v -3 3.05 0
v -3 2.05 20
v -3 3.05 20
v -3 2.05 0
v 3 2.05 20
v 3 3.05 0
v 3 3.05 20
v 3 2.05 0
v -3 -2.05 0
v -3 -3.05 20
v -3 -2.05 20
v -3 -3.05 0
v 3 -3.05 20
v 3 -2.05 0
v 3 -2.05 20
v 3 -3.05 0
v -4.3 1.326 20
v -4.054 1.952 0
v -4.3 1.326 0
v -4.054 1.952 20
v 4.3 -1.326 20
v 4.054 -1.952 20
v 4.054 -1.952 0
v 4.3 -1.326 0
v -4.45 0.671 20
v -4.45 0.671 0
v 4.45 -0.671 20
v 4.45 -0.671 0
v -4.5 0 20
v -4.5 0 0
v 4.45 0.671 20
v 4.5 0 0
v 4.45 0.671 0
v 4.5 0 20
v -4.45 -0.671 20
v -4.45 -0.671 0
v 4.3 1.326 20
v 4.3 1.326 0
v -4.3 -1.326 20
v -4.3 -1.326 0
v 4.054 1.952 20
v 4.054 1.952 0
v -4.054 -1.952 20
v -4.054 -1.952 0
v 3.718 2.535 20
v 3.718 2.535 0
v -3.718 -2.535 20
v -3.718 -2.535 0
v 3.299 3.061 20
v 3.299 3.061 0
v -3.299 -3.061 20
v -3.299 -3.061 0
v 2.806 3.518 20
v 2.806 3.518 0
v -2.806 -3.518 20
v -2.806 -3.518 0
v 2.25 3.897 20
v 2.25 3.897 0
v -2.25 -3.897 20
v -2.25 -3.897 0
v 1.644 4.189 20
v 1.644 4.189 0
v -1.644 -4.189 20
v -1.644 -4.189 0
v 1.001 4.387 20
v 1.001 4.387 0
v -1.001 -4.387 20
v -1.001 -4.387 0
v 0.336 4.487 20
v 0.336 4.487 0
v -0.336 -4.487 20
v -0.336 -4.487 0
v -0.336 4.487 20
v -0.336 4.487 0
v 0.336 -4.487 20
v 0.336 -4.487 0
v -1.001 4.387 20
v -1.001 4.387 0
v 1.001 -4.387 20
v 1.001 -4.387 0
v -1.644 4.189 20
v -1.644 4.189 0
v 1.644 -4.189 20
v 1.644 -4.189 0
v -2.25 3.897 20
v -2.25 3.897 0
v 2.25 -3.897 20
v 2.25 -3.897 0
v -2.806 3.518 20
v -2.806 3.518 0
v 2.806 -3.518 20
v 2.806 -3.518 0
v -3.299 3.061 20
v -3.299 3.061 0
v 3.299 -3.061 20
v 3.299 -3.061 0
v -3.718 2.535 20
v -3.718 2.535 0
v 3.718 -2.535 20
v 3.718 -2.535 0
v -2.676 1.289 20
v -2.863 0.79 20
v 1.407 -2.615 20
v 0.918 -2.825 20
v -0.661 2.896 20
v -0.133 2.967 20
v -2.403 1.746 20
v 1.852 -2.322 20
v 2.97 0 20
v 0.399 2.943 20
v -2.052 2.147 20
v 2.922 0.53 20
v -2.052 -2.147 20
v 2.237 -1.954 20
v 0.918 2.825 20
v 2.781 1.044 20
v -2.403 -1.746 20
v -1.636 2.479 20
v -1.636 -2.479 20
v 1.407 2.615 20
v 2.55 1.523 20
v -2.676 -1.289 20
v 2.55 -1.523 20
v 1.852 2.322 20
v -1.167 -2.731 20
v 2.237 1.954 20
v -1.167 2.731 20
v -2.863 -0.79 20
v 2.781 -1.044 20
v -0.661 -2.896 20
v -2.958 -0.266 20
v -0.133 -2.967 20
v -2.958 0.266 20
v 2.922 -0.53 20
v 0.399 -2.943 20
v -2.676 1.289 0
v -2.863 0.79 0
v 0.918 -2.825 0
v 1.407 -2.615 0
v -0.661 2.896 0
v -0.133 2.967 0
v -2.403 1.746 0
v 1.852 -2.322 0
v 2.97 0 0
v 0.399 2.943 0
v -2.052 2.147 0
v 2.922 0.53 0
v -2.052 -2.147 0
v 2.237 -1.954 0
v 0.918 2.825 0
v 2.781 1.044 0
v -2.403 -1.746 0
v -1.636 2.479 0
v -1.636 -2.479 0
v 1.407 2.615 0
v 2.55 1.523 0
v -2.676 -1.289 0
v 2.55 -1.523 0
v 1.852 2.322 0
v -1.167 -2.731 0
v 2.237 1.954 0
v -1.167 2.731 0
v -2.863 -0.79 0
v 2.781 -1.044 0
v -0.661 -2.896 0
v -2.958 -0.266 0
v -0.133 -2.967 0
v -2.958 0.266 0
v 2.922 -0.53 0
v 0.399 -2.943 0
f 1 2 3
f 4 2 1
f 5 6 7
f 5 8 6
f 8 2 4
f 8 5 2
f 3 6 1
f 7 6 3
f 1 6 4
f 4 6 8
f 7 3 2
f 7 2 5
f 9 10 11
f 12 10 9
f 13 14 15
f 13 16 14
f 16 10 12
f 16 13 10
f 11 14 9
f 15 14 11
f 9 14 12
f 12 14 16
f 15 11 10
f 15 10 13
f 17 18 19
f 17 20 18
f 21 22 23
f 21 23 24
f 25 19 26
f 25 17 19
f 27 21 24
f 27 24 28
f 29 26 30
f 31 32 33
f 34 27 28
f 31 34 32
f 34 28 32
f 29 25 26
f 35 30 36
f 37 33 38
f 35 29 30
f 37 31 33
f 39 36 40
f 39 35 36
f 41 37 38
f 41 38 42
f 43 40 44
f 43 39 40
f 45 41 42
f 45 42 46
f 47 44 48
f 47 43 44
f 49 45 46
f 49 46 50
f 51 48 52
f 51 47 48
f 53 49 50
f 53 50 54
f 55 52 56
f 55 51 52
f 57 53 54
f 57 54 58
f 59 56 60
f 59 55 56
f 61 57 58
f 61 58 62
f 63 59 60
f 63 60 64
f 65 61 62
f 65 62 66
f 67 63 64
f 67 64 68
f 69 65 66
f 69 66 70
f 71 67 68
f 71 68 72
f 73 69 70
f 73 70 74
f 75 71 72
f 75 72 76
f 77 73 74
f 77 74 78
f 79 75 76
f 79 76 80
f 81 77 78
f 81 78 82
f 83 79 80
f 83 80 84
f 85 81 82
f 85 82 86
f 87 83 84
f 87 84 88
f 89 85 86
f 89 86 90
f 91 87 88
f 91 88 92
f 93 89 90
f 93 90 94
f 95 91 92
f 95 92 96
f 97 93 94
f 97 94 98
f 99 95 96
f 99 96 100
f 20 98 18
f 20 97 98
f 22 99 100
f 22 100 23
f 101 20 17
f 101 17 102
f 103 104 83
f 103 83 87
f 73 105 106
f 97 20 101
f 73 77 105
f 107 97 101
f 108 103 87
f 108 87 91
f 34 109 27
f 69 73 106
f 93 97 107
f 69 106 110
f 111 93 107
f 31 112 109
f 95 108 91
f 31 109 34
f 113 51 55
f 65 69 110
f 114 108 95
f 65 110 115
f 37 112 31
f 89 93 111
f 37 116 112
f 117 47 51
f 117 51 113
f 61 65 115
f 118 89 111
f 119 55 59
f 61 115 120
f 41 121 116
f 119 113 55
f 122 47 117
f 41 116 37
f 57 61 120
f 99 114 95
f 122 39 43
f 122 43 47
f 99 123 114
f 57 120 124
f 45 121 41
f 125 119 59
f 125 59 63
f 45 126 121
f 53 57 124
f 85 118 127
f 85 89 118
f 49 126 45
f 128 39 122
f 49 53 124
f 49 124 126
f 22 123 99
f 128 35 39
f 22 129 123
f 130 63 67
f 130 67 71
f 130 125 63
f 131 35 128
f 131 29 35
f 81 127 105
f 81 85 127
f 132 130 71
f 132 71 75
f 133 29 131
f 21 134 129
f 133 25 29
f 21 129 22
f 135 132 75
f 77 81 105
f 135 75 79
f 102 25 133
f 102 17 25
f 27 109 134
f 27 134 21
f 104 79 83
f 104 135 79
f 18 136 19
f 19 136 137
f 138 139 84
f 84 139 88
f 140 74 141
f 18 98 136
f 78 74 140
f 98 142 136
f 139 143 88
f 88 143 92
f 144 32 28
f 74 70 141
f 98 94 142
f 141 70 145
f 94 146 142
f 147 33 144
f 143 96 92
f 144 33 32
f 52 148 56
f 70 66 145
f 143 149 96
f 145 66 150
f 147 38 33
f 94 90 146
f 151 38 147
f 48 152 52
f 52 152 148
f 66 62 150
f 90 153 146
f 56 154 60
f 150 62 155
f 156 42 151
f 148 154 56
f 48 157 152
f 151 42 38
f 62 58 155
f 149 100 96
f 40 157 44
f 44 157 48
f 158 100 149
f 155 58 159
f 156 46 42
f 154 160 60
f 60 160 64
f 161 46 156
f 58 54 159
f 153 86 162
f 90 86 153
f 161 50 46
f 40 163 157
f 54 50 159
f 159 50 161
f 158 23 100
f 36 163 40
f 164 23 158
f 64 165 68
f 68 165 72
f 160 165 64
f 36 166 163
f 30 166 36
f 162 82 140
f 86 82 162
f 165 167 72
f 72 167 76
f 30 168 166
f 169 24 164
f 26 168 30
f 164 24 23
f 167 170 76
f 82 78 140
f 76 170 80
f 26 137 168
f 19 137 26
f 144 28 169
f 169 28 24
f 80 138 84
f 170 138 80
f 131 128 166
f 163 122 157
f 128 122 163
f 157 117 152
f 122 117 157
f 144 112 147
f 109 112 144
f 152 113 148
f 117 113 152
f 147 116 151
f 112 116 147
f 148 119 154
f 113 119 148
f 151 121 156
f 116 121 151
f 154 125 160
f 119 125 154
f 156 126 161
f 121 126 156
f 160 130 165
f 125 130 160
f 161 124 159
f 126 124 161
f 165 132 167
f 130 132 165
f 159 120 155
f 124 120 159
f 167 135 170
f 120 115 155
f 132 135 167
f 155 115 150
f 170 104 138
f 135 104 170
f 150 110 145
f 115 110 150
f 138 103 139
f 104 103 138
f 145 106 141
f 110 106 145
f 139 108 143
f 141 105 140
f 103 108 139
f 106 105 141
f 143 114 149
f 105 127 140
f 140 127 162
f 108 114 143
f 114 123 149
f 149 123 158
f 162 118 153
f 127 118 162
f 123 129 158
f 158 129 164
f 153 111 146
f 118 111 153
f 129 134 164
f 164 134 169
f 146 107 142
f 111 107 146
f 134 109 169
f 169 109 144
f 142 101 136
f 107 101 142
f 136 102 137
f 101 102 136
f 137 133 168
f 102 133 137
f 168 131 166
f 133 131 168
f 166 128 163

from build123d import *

# Parameters (mm, degrees)
BOX_W             = 6
BOX_H             = 1
BOX_DEPTH         = 20
BOX001_W          = 6
BOX001_H          = 1
BOX001_DEPTH      = 20
CYLINDER001_R     = 2.97
CYLINDER001_DEPTH = 20
CYLINDER_R        = 4.5
CYLINDER_DEPTH    = 20


with BuildPart() as cubo:
    # Box → Box (new body)
    with BuildSketch(Plane(origin=(-3, 2.05, 0), x_dir=(1, 0, 0), z_dir=(0, 0, 1))):
        with Locations((3, 0.5)):
            Rectangle(BOX_W, BOX_H)
    extrude(amount=BOX_DEPTH)


with BuildPart() as cubo001:
    # Box001 → Box001 (new body)
    with BuildSketch(Plane(origin=(-3, -3.05, 0), x_dir=(1, 0, 0), z_dir=(0, 0, 1))):
        with Locations((3, 0.5)):
            Rectangle(BOX001_W, BOX001_H)
    extrude(amount=BOX001_DEPTH)


with BuildPart() as cilindro001:
    # Cylinder001 → Cylinder001 (new body)
    with BuildSketch(Plane.XY):
        Circle(CYLINDER001_R)
    extrude(amount=CYLINDER001_DEPTH)


with BuildPart() as cut:
    # Cylinder → Cylinder (new body)
    with BuildSketch(Plane.XY):
        Circle(CYLINDER_R)
    extrude(amount=CYLINDER_DEPTH)

    # Cut: cut Cilindro001
    add(cilindro001.part, mode=Mode.SUBTRACT)


solid = Compound([cubo.part, cubo001.part, cut.part])
